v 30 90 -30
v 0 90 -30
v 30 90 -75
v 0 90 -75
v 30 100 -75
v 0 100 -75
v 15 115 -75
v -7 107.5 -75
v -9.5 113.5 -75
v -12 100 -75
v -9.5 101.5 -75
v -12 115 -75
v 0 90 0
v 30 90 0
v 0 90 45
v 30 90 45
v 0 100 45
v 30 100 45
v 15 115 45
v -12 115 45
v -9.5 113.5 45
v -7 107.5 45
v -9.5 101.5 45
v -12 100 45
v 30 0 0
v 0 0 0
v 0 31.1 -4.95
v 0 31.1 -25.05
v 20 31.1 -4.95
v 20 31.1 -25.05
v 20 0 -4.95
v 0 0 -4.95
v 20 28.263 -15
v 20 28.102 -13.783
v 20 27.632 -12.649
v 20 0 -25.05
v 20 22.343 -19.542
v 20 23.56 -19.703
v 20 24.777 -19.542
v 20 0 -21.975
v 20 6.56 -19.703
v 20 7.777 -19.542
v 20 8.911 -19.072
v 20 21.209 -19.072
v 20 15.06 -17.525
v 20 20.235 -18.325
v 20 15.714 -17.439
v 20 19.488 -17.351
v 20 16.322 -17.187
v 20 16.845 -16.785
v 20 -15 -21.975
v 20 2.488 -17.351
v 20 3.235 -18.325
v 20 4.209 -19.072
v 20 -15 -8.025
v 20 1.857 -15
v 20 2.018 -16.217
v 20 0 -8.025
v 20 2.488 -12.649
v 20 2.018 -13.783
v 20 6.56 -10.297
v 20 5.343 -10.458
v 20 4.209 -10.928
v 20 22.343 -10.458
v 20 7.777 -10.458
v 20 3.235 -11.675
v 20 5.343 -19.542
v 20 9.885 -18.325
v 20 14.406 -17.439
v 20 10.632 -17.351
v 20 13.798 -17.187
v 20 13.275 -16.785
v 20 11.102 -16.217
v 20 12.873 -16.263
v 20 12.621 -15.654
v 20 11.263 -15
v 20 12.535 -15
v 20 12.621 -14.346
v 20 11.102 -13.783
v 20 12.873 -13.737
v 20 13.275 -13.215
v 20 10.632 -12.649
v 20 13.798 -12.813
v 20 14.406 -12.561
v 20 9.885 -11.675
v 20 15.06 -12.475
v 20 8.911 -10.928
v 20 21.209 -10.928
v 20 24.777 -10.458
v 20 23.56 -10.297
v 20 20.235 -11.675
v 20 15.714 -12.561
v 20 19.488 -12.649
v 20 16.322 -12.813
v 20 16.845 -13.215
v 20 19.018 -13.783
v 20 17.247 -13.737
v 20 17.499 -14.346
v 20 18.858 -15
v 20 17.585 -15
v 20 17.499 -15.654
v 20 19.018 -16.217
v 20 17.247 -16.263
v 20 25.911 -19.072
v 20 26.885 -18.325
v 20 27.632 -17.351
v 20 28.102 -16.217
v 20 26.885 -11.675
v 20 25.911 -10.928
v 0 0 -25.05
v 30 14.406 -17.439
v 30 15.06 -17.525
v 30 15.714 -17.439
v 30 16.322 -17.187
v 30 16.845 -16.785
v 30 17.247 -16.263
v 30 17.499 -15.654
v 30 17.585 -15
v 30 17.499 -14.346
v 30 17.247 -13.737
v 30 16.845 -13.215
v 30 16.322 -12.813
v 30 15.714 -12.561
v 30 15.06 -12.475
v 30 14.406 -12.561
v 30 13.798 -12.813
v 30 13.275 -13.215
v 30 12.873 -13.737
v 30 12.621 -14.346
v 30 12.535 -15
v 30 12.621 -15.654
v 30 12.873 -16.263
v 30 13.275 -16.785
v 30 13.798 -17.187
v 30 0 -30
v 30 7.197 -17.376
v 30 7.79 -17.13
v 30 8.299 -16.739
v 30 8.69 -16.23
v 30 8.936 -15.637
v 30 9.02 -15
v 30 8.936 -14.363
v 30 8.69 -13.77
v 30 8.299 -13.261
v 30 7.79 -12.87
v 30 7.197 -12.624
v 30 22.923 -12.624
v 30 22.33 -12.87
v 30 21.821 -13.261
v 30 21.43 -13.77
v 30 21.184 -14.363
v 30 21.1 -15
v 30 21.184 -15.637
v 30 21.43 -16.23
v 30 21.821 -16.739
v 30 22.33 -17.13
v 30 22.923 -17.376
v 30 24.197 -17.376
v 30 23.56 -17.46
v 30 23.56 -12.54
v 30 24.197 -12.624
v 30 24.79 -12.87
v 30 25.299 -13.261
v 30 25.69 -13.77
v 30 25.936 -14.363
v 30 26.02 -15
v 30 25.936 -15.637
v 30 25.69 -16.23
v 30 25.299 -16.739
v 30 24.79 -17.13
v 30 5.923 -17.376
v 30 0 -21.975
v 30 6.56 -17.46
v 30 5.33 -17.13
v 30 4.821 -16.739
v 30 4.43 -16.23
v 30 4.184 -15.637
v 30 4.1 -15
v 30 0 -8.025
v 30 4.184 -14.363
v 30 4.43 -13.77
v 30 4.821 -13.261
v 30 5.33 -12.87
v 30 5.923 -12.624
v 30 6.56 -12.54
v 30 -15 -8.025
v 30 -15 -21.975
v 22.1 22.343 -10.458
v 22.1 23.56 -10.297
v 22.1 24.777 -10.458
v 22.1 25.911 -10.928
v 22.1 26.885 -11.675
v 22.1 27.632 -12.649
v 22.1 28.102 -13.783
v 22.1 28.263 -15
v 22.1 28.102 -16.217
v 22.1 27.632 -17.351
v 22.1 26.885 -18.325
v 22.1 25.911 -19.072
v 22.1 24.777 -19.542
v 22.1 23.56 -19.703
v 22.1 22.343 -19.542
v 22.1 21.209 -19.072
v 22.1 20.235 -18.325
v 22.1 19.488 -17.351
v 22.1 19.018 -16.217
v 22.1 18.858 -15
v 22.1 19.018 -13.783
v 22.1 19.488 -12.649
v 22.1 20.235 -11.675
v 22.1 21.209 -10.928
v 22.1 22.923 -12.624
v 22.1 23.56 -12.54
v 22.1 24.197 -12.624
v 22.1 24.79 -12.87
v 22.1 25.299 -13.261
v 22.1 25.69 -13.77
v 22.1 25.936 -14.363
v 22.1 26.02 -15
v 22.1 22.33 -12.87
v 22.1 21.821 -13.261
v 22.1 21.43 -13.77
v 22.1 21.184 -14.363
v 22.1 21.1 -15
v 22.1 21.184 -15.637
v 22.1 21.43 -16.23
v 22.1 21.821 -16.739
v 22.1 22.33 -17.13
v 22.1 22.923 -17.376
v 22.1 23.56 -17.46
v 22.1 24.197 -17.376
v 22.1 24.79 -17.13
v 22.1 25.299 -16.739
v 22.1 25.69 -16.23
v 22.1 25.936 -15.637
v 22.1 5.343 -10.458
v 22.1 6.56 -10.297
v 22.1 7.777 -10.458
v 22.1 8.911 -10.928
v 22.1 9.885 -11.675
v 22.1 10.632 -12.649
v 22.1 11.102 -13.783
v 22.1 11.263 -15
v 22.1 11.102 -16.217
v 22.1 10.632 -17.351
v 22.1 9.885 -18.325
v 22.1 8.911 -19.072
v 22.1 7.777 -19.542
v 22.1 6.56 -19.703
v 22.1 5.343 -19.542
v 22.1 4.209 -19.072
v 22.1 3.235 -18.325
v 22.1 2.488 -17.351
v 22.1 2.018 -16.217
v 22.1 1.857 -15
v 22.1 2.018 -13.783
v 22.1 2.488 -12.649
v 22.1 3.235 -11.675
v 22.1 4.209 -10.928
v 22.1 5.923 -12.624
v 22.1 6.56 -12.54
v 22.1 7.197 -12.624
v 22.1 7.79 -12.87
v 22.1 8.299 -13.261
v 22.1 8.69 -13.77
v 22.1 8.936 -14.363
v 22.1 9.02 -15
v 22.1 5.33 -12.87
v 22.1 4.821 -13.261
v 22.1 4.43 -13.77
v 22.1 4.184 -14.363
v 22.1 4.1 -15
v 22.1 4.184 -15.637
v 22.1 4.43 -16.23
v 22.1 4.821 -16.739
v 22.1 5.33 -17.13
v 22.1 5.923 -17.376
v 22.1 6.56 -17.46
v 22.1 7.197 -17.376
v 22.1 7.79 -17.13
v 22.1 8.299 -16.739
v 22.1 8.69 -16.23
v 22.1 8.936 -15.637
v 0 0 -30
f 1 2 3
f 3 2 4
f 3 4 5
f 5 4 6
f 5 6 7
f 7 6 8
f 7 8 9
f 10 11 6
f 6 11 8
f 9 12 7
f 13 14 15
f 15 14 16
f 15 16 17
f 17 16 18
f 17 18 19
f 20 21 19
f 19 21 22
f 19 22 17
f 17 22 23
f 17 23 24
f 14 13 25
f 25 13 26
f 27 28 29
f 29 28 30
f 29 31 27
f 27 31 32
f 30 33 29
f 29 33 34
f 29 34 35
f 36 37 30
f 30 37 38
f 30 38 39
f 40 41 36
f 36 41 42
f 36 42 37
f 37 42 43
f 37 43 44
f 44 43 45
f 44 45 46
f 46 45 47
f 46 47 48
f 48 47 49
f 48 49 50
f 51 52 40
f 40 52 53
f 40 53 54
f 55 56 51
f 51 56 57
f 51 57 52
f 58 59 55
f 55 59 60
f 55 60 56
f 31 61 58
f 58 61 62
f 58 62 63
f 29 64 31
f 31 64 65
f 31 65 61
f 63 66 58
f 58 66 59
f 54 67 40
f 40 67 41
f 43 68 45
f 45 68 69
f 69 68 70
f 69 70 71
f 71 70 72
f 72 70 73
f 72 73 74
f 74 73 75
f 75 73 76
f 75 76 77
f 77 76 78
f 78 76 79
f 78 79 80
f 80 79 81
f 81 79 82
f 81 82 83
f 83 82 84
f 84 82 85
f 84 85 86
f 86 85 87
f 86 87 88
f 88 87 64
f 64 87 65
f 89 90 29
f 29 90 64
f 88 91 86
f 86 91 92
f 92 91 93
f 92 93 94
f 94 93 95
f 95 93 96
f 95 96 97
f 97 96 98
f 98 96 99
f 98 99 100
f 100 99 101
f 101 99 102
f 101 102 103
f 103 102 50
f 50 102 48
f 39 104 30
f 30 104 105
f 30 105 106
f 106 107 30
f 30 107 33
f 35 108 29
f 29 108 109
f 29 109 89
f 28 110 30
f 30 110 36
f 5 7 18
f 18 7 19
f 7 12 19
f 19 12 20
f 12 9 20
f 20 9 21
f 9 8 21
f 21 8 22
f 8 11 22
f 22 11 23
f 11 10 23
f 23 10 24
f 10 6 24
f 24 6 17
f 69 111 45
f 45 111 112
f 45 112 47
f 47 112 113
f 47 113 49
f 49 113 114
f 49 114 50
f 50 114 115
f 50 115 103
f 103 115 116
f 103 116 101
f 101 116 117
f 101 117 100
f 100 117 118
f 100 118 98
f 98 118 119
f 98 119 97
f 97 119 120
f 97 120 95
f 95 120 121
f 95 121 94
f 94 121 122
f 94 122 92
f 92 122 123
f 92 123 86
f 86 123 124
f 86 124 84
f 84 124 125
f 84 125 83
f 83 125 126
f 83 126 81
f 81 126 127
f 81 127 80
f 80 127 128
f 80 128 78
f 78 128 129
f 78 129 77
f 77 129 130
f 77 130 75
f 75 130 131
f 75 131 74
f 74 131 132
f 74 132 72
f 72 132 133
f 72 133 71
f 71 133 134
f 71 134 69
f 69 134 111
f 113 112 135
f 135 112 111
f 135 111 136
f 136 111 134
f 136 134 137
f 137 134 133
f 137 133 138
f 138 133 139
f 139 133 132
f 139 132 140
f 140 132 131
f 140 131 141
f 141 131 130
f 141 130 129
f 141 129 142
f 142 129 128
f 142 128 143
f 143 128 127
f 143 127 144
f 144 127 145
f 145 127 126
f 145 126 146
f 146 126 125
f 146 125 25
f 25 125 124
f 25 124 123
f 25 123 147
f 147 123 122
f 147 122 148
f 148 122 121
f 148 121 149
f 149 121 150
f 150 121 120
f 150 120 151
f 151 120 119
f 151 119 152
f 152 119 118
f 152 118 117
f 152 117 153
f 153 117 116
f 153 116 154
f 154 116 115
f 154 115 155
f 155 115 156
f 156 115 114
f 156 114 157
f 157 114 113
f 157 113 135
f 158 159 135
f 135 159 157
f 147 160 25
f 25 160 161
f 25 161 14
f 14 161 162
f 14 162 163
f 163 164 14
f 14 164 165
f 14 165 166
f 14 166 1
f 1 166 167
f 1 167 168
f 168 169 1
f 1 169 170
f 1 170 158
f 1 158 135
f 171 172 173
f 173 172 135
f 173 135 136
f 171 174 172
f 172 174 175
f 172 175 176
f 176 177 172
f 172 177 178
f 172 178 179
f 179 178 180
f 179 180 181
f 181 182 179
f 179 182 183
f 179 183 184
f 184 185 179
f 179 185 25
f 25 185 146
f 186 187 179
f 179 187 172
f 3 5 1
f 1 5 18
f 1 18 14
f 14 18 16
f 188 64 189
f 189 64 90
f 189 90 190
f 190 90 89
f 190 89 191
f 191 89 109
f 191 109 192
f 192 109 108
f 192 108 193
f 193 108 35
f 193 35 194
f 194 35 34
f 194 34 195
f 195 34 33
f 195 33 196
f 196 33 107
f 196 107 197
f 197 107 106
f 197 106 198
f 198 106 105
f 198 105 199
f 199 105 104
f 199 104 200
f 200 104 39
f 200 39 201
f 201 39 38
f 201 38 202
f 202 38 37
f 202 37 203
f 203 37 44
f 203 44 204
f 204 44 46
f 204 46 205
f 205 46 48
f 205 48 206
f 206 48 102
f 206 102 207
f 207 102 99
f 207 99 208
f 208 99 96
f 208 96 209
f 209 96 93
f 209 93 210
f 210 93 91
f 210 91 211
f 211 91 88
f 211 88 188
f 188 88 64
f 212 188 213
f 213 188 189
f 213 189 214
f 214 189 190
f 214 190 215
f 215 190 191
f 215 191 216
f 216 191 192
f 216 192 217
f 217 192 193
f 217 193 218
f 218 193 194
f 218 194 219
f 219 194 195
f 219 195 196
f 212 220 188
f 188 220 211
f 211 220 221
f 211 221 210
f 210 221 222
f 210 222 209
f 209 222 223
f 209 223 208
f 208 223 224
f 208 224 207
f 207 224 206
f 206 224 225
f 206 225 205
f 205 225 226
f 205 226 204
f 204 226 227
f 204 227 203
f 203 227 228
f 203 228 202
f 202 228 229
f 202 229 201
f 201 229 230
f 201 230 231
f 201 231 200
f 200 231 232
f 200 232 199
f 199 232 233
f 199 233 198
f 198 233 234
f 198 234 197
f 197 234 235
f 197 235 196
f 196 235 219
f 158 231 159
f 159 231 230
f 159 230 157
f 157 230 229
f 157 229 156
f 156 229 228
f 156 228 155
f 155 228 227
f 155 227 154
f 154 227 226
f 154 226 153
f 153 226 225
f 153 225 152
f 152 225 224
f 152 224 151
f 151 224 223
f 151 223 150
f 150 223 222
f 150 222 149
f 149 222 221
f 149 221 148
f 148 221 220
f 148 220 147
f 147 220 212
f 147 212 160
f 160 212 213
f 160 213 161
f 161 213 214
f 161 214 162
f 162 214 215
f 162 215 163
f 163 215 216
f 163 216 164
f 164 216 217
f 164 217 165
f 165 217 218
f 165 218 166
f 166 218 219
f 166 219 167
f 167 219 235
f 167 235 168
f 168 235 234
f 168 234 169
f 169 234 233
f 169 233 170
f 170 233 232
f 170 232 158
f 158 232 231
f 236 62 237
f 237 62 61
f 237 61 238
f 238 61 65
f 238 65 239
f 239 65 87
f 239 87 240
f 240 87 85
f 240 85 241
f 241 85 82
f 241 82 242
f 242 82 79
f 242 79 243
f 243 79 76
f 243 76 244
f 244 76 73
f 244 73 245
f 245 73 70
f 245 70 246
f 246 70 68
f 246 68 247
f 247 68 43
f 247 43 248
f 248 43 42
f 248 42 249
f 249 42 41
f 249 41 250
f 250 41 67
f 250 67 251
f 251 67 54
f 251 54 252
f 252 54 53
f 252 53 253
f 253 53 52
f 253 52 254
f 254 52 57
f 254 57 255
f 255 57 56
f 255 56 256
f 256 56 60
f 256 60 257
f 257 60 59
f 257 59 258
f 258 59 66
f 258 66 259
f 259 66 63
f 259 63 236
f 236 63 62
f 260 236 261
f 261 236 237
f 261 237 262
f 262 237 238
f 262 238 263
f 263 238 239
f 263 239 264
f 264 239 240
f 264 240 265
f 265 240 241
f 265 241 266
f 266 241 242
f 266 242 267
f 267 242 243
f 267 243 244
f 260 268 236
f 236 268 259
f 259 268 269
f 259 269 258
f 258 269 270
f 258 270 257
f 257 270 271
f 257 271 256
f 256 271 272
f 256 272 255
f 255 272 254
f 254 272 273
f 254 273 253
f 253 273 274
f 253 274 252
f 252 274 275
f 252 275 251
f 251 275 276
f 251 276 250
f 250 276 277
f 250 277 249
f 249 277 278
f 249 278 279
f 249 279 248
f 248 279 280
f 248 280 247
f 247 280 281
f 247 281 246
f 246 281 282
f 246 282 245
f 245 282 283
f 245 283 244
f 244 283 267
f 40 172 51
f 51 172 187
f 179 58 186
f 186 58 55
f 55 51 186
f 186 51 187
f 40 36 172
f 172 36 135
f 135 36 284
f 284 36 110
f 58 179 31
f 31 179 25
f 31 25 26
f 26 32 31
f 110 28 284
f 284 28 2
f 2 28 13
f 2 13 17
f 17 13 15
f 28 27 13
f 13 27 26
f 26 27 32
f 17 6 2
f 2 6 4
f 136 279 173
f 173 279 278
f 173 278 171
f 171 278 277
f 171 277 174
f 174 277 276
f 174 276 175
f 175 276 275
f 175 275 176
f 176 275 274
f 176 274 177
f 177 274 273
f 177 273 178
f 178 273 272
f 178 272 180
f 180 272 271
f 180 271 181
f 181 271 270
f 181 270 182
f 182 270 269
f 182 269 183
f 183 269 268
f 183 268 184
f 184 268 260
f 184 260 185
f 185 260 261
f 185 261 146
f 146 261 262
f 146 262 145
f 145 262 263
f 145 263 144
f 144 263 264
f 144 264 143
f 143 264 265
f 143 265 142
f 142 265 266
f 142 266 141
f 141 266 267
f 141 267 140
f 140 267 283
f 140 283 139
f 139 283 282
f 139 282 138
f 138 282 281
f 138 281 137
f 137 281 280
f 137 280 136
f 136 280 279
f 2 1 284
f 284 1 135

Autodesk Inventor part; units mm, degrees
ref_plane "YZ Plane" through (0, 0, 0) normal (1, 0, 0) x (0, 1, 0)
ref_plane "XZ Plane" through (0, 0, 0) normal (0, 1, 0) x (-1, 0, 0)
sketch "Sketch1" plane through (0, 0, 0) normal (0, 0, 1) x (1, 0, 0)
  line L0 (0, 0) -> (25, 0)
  line L1 (25, 0) -> (25, 40)
  line L2 (25, 40) -> (0, 40)
  line L3 (0, 40) -> (0, 0)
  dimension "d1" = 25
  dimension "d2" = 40
  dimension "d3" = 25
extrude "Extrusion1" add sketch "Sketch1" against normal blind 30
sketch "Sketch2" plane through (25, 0, 0) normal (1, 0, 0) x (0, 0, -1)
  line L0 (0, 0) -> (30, 0) projected
  circle A0 centre (15, 6.56) radius 2.46
extrude "Extrusion2" cut sketch "Sketch2" against normal blind 30
sketch "Sketch3" plane through (0, 0, 0) normal (-1, 0, 0) x (0, 0, 1)
  line L0 (0, 0) -> (-30, 0) projected
  line L1 (-25.05, 0) -> (-4.95, 0)
  line L2 (-4.95, 0) -> (-4.95, 33.12)
  line L3 (-4.95, 33.12) -> (-25.05, 33.12)
  line L4 (-25.05, 33.12) -> (-25.05, 0)
  dimension "d11" = 20.1
extrude "Extrusion3" cut sketch "Sketch3" against normal blind 20
sketch "Sketch4" plane through (0, 0, 0) normal (0, -1, 0) x (1, 0, 0)
  line L0 (20, -4.95) -> (20, -25.05) projected
  line L1 (20, -15) -> (25, -15)
  line L2 (25, 0) -> (25, -30) projected
  line L3 (20, -8.025) -> (25, -8.025)
  line L4 (25, -8.025) -> (25, -21.975)
  line L5 (25, -21.975) -> (20, -21.975)
  line L6 (20, -21.975) -> (20, -8.025)
  line L7 (20, -8.025) -> (25, -21.975) construction
  line L8 (25, -8.025) -> (20, -21.975) construction
  line L9 (25, -12.54) -> (25, -17.46) projected
  point P0 (0, 0)
  point P1 (22.5, -15)
  dimension "d14" = 13.95
extrude "Extrusion4" add sketch "Sketch4" along normal blind 15
sketch "Sketch5" plane through (20, 0, 0) normal (-1, 0, 0) x (0, 0, 1)
  circle A0 centre (-15, 6.56) radius 2.46 projected
  circle A1 centre (-15, 6.56) radius 4.7025
  circle A2 centre (-15, 6.56) radius 2.46 projected
  circle A3 centre (-15, 6.56) radius 2.46
  point P0 (0, 0)
  dimension "d17" = 9.405
extrude "Extrusion5" cut sketch "Sketch5" against normal blind 2.1
sketch "Sketch6" plane through (25, 0, 0) normal (1, 0, 0) x (0, 0, -1)
  circle A0 centre (15, 6.56) radius 4.7025 projected
  line L0 (15, 6.56) -> (15, 23.56)
  circle A1 centre (15, 23.56) radius 2.46
  point P0 (0, 0)
  dimension "d20" = 17
  dimension "d21" = 4.92
extrude "Extrusion6" cut sketch "Sketch6" against normal blind 10 contours A1
sketch "Sketch7" plane through (20, 0, 0) normal (-1, 0, 0) x (0, 0, 1)
  circle A0 centre (-15, 23.56) radius 2.46 projected
  circle A1 centre (-15, 23.56) radius 4.7025
  point P0 (0, 0)
  dimension "d24" = 9.405
extrude "Extrusion7" cut sketch "Sketch7" against normal blind 2.1
sketch "Sketch9" plane through (25, 0, 0) normal (1, 0, 0) x (0, 0, -1)
  circle A0 centre (15, 6.56) radius 2.46 projected
  circle A1 centre (15, 6.56) radius 2.46
  circle A2 centre (15, 23.56) radius 2.46 projected
  circle A3 centre (15, 23.56) radius 2.46
  line L0 (30, 40) -> (30, 0) projected
  line L1 (30, 0) -> (30, 40)
  line L2 (30, 40) -> (0, 40)
  line L3 (0, 40) -> (0, 0)
  line L4 (0, 0) -> (8.025, 0) projected
  line L5 (21.975, 0) -> (21.975, -15)
  line L6 (21.975, -15) -> (8.025, -15)
  line L7 (8.025, -15) -> (8.025, 0)
  line L8 (0, 0) -> (8.025, 0)
  line L9 (21.975, 0) -> (30, 0)
extrude "Extrusion8" add sketch "Sketch9" along normal blind 5
sketch "Sketch10" plane through (0, 40, 0) normal (0, 1, 0) x (1, 0, 0)
  line L0 (0, 30) -> (30, 30) projected
  line L1 (30, 0) -> (0, 0) projected
  line L2 (0, 30) -> (30, 30)
  line L3 (30, 30) -> (30, 0)
  line L4 (30, 0) -> (0, 0)
  line L5 (0, 0) -> (0, 30)
extrude "Extrusion9" add sketch "Sketch10" along normal blind 30
sketch "Sketch12" plane through (30, 0, 0) normal (1, 0, 0) x (0, 0, -1)
  circle A0 centre (15, 6.56) radius 2.46 projected
  line L0 (15, 6.56) -> (15, 15.06)
  circle A1 centre (15, 15.06) radius 2.525
  point P0 (0, 0)
  dimension "d31" = 8.5
  dimension "d33" = 5.05
extrude "Extrusion10" cut sketch "Sketch12" against normal blind 30 contours A1
sketch "Sketch14" plane through (0, 0, 0) normal (0, 0, 1) x (1, 0, 0)
  line L0 (30, 70) -> (0, 70) projected
  line L1 (0, 70) -> (0, 85)
  line L2 (30, 100) -> (15, 115)
  line L3 (-12, 115) -> (15, 115)
  line L4 (30, 0) -> (30, 70) projected
  line L5 (30, 100) -> (30, 70)
  line L6 (-9.5, 113.5) -> (-12, 115)
  line L7 (-9.5, 101.5) -> (-12, 100)
  line L8 (-7, 107.5) -> (-9.5, 101.5)
  line L9 (-7, 107.5) -> (-9.5, 113.5)
  line L10 (0, 100) -> (0, 85)
  line L11 (0, 100) -> (-12, 100)
  point P0 (0, 0)
  dimension "d49" = 15
  dimension "d61" = 12
extrude "Extrusion12" add sketch "Sketch14" against normal blind 30
sketch "Sketch15" plane through (0, 0, -25.05) normal (-1, 0, 0) x (0, 0, 1)
  line L0 (0, 33.12) -> (20.1, 33.12) projected
  line L1 (20.1, 33.12) -> (20.1, 0) projected
  line L2 (0, 33.12) -> (20.1, 33.12)
  line L3 (20.1, 33.12) -> (20.1, 31.1)
  line L4 (20.1, 31.1) -> (0, 31.1)
  line L5 (0, 31.1) -> (0, 33.12)
  point P0 (25.05, 0)
  dimension "d57" = 2.02
extrude "Extrusion13" add sketch "Sketch15" against normal blind 20
sketch "Sketch19" plane through (0, 0, 0) normal (0, 0, 1) x (1, 0, 0)
  line L0 (0, 100) -> (0, 0) projected
  line L1 (0, 100) -> (-12, 100) projected
  line L2 (0, 100) -> (-12, 100)
  line L3 (-12, 100) -> (-9.5, 101.5) projected
  line L4 (-12, 100) -> (-9.5, 101.5)
  line L5 (-9.5, 101.5) -> (-7, 107.5) projected
  line L6 (-9.5, 101.5) -> (-7, 107.5)
  line L7 (-7, 107.5) -> (-9.5, 113.5) projected
  line L8 (-7, 107.5) -> (-9.5, 113.5)
  line L9 (-9.5, 113.5) -> (-12, 115) projected
  line L10 (-9.5, 113.5) -> (-12, 115)
  line L11 (-12, 115) -> (15, 115) projected
  line L12 (-12, 115) -> (15, 115)
  line L13 (15, 115) -> (30, 100) projected
  line L14 (15, 115) -> (30, 100)
  line L15 (30, 100) -> (30, 90)
  line L16 (30, 0) -> (30, 100) projected
  line L17 (30, 90) -> (0, 90)
  line L18 (0, 0) -> (0, 100) projected
  line L19 (0, 90) -> (0, 100)
  dimension "d62" = 10
  dimension "d63" = 30
extrude "Extrusion14" add sketch "Sketch19" along normal blind 45
ref_plane "Work Plane1" through (0, 0, -15) normal (0, 0, 1) x (1, 0, 0)
mirror "Mirror1" about plane through (0, 0, -15) normal (0, 0, 1) of "Extrusion14"
properties part number "rec_b_12mm_x_120mm"
